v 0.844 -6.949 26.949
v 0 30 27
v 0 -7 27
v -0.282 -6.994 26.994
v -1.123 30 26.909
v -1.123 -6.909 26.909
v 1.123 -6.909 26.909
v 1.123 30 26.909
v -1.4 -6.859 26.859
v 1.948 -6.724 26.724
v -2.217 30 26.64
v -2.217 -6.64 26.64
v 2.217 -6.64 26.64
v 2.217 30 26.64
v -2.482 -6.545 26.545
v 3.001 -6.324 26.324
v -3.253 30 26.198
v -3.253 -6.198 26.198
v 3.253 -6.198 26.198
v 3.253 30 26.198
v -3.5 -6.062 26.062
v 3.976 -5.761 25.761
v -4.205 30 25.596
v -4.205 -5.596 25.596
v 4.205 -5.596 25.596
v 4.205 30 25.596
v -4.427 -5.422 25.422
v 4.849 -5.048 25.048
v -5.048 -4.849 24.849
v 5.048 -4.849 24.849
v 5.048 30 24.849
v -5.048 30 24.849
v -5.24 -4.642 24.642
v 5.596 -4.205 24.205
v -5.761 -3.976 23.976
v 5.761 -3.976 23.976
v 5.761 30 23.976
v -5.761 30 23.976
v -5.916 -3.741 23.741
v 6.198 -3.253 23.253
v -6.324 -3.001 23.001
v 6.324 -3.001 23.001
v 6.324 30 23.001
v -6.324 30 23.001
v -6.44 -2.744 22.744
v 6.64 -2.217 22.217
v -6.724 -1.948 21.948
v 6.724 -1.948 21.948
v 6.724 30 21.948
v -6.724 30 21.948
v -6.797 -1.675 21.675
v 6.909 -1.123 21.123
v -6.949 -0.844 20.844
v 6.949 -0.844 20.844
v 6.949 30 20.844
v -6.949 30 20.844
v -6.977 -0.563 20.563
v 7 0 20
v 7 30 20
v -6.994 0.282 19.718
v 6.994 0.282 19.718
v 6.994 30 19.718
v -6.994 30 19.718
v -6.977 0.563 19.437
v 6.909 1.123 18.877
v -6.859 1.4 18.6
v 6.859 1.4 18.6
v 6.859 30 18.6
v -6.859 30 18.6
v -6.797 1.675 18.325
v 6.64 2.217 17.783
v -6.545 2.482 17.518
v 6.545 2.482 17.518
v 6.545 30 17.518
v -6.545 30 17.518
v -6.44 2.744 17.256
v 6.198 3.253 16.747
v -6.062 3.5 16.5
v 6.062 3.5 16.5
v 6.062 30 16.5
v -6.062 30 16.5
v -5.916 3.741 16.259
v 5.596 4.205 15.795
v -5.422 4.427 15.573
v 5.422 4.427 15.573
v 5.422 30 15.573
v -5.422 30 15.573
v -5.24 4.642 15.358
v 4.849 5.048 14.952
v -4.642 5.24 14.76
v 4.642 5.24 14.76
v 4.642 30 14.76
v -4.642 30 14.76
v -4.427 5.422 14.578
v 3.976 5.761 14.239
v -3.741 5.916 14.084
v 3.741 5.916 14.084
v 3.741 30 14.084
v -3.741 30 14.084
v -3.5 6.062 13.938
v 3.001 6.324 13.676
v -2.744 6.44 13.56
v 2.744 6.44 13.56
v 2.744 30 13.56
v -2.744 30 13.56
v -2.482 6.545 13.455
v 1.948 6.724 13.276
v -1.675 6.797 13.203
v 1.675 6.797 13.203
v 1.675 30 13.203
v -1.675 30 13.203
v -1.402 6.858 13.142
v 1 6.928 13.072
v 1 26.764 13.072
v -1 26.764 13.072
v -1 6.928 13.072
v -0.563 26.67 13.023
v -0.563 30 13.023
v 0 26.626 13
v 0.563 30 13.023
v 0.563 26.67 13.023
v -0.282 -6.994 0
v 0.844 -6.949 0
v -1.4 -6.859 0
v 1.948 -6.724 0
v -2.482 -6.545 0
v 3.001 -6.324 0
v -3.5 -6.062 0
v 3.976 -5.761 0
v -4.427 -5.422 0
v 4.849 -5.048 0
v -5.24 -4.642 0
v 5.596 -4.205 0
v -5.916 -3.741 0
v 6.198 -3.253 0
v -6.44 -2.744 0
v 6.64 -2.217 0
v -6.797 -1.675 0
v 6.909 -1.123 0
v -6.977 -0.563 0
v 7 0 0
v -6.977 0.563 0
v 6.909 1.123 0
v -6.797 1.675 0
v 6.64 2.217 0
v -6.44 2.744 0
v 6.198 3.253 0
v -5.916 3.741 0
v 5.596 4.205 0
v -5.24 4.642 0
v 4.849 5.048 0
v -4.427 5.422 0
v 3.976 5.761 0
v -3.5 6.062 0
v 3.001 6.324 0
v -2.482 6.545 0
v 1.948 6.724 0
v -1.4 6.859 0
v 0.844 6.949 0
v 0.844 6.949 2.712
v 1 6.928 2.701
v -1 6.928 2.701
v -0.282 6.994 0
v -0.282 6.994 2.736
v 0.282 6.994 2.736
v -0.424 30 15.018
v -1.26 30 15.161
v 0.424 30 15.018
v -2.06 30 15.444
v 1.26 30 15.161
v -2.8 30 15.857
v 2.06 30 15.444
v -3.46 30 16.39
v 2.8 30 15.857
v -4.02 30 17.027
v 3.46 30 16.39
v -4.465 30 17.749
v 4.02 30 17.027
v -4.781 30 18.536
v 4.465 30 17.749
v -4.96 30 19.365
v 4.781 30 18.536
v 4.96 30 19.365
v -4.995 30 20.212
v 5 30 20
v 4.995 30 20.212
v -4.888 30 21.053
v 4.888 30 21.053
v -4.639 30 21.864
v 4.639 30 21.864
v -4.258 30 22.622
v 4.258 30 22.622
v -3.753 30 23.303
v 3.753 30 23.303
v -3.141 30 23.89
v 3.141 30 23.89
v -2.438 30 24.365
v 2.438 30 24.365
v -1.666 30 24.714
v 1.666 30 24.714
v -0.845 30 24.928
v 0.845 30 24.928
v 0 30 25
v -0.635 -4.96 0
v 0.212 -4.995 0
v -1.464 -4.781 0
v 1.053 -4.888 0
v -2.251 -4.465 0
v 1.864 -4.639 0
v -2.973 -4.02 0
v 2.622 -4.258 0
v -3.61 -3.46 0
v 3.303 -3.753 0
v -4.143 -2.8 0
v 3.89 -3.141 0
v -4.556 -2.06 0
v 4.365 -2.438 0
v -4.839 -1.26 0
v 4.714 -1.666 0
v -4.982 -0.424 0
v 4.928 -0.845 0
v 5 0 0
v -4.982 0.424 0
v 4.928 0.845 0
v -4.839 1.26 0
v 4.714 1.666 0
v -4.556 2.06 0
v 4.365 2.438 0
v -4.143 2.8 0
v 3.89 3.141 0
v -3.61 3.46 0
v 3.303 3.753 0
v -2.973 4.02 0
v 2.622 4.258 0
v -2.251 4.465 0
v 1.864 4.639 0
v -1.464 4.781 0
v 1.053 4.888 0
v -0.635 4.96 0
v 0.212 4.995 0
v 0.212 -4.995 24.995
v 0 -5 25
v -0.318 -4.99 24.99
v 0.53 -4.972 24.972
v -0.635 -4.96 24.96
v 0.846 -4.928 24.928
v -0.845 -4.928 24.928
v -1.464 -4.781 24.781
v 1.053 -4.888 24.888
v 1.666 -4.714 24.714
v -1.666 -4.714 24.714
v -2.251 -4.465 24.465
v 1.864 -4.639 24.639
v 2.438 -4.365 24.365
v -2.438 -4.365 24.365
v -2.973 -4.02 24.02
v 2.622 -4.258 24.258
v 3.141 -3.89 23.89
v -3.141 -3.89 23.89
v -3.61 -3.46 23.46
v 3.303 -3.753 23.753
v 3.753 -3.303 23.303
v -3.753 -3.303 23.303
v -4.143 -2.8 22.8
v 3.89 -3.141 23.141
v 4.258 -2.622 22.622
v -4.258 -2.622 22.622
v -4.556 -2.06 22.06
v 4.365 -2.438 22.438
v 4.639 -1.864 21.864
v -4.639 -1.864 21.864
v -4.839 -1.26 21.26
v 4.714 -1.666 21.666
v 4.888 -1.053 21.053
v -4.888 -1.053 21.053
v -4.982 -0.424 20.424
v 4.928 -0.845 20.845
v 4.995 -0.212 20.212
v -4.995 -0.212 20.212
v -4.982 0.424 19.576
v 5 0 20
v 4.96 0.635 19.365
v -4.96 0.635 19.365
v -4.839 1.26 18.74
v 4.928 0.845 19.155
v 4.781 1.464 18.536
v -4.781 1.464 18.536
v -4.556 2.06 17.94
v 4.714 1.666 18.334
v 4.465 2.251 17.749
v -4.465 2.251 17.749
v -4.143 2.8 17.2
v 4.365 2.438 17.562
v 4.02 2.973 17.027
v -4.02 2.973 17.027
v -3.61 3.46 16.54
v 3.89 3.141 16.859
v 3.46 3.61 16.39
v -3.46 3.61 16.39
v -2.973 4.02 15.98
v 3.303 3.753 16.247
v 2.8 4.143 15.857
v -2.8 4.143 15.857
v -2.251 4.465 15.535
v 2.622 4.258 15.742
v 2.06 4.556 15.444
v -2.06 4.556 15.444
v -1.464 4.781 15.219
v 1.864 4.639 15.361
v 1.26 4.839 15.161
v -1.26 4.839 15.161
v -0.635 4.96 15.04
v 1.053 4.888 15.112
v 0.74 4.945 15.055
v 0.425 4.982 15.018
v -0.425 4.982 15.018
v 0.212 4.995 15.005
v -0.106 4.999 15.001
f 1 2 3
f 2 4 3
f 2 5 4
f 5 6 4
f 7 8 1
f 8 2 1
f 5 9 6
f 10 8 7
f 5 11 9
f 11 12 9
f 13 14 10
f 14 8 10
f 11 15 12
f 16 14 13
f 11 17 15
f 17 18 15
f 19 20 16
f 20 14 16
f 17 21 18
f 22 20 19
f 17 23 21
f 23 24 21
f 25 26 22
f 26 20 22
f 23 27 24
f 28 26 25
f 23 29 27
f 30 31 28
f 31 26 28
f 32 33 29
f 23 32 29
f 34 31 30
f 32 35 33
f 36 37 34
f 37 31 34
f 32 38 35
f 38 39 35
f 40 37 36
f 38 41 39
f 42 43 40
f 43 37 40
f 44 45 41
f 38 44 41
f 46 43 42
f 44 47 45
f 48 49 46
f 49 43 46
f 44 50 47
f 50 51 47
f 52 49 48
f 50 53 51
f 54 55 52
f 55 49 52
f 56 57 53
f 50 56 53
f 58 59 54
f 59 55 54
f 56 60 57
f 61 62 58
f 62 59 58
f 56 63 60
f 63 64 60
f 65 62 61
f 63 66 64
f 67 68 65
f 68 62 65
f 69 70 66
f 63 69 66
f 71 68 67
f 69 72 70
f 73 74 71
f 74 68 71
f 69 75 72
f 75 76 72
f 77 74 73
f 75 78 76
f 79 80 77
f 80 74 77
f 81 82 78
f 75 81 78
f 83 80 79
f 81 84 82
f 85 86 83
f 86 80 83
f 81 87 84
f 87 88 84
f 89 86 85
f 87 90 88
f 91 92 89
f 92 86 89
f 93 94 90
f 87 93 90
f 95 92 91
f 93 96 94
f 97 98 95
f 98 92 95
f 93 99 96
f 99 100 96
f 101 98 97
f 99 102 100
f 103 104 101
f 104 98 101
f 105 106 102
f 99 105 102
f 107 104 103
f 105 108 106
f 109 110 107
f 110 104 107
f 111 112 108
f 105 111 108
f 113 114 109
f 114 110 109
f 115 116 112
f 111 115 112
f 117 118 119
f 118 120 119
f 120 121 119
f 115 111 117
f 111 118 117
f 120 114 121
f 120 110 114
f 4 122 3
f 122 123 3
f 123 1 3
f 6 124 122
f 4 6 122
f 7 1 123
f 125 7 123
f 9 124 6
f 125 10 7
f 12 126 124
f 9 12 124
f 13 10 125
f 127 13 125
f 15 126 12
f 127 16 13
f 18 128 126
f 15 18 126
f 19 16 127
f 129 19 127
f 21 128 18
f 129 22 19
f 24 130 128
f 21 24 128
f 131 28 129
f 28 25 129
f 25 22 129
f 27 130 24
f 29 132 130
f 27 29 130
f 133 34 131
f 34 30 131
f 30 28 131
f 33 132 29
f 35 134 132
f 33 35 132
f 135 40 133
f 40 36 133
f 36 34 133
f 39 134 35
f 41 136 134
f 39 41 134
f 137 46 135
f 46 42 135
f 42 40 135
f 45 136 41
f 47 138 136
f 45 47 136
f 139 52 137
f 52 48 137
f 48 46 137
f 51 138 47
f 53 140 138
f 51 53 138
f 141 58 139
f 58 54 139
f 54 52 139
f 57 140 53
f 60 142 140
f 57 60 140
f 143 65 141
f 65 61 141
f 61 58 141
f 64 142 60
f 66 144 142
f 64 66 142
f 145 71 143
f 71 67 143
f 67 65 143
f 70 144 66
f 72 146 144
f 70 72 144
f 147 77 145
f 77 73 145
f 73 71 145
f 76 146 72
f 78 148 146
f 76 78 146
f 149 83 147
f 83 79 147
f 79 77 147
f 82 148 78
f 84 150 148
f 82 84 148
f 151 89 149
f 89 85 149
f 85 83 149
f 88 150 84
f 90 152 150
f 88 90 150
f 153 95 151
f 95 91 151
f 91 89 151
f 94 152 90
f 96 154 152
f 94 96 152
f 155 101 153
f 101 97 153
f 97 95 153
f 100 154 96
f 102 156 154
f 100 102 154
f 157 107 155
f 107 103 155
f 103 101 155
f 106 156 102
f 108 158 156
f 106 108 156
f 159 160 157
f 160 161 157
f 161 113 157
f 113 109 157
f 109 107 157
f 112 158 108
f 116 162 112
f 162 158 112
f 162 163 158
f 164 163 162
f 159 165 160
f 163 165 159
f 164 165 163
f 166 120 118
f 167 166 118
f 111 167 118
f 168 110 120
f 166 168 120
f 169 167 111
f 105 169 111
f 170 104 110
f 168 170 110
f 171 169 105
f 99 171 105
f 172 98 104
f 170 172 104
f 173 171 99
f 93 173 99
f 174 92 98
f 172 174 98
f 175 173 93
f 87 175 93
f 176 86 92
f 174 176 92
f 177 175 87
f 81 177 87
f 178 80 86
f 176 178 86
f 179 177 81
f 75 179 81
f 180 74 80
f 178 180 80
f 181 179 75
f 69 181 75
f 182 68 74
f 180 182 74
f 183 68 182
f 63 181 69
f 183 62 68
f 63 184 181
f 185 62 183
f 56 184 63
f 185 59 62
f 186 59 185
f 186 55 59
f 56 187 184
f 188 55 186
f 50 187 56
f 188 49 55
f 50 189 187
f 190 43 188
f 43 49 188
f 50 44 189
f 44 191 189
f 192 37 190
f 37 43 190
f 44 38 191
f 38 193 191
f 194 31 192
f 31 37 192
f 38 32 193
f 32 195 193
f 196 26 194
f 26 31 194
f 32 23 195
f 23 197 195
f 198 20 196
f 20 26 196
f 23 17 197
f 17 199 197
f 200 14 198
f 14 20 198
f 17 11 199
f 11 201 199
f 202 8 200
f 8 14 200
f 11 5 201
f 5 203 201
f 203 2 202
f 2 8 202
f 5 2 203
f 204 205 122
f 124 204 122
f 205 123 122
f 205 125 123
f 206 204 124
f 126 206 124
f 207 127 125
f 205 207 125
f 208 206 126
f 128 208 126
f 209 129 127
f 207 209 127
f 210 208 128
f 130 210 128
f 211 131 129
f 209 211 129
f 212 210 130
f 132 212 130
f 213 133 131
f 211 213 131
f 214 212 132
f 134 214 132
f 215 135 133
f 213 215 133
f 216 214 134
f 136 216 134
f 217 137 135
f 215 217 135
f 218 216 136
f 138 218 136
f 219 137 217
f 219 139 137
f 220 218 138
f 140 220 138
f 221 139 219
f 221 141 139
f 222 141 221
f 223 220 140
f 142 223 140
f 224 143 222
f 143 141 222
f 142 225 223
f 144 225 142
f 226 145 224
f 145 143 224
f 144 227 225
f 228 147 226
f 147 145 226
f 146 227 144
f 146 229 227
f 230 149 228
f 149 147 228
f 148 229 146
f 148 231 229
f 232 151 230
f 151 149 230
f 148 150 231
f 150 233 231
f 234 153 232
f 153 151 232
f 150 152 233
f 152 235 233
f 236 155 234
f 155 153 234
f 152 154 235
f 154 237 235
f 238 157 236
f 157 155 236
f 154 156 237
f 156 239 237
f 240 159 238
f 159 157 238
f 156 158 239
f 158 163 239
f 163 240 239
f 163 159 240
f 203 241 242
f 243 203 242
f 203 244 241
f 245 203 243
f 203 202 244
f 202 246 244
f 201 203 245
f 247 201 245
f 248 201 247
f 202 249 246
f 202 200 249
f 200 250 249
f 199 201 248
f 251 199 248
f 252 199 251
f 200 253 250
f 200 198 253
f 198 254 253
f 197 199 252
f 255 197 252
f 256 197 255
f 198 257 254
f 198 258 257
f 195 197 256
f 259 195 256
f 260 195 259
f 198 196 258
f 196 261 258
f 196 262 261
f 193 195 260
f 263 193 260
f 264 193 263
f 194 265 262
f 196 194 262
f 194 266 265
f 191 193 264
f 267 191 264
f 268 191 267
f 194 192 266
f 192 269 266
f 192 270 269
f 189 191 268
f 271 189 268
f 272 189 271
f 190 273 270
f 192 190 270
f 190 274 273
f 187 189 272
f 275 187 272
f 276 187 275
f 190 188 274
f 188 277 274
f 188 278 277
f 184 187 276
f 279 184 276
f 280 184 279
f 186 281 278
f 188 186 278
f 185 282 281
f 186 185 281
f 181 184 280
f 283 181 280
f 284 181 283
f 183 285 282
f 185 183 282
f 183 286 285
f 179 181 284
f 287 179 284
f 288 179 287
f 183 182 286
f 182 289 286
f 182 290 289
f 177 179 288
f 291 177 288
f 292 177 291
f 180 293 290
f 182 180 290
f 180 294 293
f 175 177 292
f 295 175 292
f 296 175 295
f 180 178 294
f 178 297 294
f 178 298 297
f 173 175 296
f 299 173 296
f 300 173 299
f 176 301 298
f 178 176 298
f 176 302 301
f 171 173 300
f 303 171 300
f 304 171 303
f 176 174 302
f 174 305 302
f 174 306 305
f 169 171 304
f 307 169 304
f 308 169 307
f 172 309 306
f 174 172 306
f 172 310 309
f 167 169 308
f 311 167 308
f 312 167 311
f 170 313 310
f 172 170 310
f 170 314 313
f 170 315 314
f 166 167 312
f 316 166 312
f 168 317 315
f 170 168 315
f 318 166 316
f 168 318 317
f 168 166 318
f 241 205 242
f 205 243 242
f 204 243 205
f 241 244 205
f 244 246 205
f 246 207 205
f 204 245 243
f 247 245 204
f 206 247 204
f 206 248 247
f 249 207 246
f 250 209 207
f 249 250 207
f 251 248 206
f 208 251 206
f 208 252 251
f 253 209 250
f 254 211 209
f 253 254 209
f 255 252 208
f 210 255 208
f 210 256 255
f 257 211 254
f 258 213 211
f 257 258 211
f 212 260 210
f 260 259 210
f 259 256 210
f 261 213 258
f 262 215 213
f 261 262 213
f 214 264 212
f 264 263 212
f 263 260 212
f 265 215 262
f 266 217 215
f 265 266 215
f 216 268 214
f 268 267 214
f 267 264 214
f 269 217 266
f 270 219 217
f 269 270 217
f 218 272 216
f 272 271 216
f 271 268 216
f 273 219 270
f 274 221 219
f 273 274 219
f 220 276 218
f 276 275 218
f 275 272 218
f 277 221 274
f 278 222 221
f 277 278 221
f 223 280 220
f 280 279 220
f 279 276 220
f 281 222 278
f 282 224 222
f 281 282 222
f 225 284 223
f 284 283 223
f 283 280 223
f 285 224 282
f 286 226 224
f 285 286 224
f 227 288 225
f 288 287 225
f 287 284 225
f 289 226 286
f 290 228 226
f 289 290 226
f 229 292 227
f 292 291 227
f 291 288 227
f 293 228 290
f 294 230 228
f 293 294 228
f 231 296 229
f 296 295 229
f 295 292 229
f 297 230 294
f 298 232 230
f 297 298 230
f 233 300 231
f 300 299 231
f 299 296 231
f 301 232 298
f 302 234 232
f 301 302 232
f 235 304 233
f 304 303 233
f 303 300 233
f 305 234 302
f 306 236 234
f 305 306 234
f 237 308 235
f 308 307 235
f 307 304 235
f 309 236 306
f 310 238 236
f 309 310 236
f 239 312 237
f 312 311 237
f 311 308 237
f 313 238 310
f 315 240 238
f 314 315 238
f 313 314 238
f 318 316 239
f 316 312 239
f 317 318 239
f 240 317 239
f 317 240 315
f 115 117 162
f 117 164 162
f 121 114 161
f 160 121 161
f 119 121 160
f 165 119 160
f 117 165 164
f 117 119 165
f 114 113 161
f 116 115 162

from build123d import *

# Parameters (mm, degrees)
SKETCH2_R           = 7
SKETCH2_R_2         = 5
BOSS_EXTRUDE1_DEPTH = 1


with BuildPart() as part:
    # Sweep1: sweep along a path in Sketch1
    with BuildLine(Plane.ZY) as sweep1_path:
        Line((0, 0), (20, 0))
        Line((20, 0), (20, 30))
    # Sketch2 → Sweep1 (sweep)
    with BuildSketch(Plane.XY):
        Circle(SKETCH2_R)
        Circle(SKETCH2_R_2, mode=Mode.SUBTRACT)
    sweep(path=sweep1_path.line, transition=Transition.RIGHT)

    # Sketch3 → Boss-Extrude1 (add, symmetric)
    with BuildSketch(Plane(origin=(0, 0, 0), x_dir=(0, 0, -1), z_dir=(1, 0, 0))):
        Polygon((-13.456771137, 6.543228863), (-2.5, 6.543228863), (-13.456771137, 27.5), align=None)
    extrude(amount=BOSS_EXTRUDE1_DEPTH, both=True)


solid = part.part
